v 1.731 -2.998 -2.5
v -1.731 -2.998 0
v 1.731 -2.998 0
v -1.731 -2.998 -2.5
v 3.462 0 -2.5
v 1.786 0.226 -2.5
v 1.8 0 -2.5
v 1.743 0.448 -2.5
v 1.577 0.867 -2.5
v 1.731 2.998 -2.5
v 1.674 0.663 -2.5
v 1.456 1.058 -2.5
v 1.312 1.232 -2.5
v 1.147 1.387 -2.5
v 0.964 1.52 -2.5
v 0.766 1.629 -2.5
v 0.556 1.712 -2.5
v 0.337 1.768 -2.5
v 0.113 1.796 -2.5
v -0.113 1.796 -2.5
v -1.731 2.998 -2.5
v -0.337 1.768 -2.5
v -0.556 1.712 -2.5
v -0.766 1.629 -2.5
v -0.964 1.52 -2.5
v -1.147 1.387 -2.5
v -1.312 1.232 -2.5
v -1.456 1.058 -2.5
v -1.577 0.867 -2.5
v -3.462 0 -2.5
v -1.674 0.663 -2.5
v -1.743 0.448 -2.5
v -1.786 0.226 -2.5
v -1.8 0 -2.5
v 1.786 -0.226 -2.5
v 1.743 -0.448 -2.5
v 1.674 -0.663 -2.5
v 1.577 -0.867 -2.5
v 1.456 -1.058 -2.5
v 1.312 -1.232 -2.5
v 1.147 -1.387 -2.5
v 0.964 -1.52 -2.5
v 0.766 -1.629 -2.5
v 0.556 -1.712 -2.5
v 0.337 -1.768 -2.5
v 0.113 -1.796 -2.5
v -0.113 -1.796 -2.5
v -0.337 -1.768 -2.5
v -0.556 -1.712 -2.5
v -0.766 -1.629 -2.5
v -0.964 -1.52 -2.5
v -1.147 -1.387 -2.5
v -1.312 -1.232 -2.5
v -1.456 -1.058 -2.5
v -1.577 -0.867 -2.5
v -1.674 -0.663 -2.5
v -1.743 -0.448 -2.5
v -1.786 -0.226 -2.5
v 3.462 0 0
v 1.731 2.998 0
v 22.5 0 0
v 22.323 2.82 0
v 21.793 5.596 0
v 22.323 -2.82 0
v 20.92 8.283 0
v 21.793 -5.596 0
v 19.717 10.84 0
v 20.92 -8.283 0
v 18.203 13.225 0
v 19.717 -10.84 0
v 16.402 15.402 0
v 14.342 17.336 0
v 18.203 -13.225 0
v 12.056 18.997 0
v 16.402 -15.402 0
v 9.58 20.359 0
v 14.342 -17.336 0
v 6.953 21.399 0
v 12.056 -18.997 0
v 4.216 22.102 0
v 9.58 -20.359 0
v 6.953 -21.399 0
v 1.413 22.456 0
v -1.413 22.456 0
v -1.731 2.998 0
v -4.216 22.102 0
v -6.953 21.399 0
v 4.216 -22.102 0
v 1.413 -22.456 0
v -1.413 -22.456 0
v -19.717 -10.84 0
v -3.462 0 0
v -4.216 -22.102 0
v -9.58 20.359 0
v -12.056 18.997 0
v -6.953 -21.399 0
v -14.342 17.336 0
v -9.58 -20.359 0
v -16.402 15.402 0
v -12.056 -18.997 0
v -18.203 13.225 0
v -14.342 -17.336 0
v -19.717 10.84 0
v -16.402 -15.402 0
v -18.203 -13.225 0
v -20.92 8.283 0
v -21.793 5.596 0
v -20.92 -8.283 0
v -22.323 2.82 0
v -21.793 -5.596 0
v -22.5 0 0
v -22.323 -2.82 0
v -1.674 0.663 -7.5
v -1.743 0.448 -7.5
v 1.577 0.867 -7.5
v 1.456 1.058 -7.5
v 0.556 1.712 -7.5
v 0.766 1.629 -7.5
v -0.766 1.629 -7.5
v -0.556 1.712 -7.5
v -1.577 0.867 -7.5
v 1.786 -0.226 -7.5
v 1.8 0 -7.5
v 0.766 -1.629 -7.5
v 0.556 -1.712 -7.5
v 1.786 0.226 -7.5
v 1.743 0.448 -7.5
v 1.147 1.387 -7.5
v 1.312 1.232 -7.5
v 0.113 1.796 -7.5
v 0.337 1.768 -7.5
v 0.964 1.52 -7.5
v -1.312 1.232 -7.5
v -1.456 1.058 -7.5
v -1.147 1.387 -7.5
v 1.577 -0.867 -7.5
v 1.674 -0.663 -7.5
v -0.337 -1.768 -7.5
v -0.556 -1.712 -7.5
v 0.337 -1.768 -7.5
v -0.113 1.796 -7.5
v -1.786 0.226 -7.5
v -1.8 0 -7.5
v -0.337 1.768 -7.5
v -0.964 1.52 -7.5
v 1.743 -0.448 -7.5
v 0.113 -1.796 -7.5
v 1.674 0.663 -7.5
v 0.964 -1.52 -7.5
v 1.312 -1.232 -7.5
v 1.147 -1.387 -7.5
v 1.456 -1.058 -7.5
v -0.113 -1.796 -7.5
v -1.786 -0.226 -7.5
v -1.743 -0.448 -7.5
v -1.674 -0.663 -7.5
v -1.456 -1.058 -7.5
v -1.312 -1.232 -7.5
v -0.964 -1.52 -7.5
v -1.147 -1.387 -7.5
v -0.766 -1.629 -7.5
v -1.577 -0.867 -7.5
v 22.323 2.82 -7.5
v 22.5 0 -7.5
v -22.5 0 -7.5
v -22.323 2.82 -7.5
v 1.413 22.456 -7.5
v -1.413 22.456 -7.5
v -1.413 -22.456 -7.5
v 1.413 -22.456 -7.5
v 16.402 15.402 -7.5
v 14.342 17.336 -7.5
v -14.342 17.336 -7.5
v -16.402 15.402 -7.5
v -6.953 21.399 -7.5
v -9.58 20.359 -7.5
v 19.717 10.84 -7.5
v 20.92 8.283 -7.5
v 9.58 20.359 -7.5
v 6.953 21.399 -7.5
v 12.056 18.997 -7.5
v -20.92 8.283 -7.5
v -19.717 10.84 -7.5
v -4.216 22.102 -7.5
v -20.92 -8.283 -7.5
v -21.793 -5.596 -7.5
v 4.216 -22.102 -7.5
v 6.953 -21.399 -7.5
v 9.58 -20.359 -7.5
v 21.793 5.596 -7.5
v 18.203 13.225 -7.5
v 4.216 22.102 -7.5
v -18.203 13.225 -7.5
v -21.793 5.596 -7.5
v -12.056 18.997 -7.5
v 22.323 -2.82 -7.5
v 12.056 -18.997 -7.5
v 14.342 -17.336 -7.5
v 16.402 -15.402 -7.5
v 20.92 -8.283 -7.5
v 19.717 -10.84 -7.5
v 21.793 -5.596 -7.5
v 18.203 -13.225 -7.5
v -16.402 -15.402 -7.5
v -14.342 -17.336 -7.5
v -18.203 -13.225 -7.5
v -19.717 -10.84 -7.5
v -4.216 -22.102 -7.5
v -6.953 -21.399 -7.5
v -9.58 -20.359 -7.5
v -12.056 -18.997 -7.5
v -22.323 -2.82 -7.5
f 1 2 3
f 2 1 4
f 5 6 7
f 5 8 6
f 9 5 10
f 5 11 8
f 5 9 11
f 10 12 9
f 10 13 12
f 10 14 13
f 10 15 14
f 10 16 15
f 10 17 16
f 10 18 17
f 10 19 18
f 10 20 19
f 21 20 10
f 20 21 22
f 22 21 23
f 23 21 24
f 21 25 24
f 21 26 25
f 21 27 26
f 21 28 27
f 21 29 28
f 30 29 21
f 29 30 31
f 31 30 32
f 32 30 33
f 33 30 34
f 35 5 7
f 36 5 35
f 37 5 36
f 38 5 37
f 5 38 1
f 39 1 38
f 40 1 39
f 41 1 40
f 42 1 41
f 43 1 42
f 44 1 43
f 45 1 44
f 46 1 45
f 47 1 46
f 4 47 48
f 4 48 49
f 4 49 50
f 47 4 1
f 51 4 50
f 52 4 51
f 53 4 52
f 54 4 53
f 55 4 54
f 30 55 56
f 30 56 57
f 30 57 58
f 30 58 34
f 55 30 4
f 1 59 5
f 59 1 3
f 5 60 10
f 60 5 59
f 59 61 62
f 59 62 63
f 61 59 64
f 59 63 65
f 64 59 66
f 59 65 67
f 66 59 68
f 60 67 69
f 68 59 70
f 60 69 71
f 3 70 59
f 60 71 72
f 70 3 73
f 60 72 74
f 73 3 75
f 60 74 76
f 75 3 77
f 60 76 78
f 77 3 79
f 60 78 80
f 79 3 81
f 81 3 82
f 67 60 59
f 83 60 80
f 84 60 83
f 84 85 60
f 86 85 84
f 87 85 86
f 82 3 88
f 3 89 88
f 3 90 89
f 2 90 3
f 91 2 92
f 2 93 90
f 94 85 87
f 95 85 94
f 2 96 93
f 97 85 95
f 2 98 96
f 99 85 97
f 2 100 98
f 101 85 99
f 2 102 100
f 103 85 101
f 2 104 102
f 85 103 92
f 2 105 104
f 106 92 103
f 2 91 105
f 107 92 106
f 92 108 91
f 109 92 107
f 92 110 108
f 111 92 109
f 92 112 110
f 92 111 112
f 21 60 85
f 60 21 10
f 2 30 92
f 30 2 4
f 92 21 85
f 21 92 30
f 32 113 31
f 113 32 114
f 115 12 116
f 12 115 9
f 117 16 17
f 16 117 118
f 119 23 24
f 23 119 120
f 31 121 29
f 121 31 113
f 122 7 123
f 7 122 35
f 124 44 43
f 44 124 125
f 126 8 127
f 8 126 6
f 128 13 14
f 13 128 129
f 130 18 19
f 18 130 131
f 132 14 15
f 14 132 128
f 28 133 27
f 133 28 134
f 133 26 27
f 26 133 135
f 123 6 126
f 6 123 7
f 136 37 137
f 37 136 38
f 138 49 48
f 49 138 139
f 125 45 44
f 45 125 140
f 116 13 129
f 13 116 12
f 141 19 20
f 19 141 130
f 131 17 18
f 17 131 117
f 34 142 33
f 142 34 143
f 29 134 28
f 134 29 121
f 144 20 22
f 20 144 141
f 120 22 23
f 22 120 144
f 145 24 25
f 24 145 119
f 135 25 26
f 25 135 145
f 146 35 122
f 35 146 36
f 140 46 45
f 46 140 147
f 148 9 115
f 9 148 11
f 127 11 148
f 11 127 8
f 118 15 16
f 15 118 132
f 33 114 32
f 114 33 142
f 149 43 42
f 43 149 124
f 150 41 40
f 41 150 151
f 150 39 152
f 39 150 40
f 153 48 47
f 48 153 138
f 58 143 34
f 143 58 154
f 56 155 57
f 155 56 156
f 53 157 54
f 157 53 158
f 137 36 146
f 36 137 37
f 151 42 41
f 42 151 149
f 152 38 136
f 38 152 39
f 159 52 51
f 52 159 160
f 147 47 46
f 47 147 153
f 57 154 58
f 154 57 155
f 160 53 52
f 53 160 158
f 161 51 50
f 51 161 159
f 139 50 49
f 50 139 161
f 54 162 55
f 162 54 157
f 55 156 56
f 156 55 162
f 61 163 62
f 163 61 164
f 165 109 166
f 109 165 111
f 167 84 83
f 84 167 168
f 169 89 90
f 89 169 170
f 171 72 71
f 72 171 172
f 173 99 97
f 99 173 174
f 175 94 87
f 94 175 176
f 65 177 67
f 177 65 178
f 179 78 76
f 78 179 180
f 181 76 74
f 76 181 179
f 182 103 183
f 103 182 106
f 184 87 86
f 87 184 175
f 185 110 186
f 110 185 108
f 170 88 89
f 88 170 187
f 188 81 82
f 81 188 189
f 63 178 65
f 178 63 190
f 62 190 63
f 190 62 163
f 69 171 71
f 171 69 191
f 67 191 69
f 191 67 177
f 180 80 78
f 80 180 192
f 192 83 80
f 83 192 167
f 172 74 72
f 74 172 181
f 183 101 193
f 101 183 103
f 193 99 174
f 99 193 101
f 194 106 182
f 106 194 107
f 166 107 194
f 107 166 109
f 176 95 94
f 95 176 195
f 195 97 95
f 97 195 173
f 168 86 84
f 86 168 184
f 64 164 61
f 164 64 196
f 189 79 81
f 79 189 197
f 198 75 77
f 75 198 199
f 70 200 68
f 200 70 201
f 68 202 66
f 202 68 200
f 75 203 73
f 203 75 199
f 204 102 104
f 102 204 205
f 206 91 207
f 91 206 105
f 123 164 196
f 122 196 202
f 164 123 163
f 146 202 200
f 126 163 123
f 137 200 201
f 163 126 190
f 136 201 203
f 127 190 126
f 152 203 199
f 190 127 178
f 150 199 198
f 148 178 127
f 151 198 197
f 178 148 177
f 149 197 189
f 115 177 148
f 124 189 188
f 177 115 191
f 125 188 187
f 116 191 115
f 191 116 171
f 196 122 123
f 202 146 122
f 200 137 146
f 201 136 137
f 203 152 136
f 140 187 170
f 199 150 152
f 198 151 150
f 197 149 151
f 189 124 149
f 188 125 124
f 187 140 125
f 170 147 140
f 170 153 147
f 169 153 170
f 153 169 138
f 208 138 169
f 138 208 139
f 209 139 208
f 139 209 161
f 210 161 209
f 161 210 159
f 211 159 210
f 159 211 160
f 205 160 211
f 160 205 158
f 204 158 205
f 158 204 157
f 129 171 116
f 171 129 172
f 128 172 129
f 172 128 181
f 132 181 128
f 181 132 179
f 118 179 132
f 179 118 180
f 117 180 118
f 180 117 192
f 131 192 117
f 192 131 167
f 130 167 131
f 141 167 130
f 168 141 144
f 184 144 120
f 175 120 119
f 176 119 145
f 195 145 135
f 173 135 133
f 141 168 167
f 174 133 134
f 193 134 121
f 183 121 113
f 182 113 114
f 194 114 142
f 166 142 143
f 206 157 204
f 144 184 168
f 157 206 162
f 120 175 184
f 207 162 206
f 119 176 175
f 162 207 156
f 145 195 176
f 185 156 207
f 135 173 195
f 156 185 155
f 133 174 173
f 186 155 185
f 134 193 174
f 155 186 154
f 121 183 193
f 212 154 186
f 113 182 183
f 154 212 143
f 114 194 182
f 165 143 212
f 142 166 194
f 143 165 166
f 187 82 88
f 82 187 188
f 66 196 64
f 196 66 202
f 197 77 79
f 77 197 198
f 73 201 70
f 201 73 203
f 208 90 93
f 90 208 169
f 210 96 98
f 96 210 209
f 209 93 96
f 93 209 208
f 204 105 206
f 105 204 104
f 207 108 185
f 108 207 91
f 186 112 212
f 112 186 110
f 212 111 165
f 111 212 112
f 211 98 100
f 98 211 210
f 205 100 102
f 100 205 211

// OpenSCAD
$fn = 50;


difference() {
	union() {
		translate(v = [0, 0, -7.5000000000]) {
			cylinder(h = 7.5000000000, r = 22.5000000000);
		}
	}
	union() {
		translate(v = [0, 0, 0]) {
			rotate(a = [0, 0, 0]) {
				difference() {
					union() {
						translate(v = [0, 0, -2.5000000000]) {
							linear_extrude(height = 2.5000000000) {
								polygon(points = [[3.4620000000, 0.0000000000], [1.7310000000, 2.9981799479], [-1.7310000000, 2.9981799479], [-3.4620000000, 0.0000000000], [-1.7310000000, -2.9981799479], [1.7310000000, -2.9981799479]]);
							}
						}
					}
					union();
				}
			}
		}
		#translate(v = [0, 0, -100.0000000000]) {
			cylinder(h = 200, r = 1.8000000000);
		}
	}
}
